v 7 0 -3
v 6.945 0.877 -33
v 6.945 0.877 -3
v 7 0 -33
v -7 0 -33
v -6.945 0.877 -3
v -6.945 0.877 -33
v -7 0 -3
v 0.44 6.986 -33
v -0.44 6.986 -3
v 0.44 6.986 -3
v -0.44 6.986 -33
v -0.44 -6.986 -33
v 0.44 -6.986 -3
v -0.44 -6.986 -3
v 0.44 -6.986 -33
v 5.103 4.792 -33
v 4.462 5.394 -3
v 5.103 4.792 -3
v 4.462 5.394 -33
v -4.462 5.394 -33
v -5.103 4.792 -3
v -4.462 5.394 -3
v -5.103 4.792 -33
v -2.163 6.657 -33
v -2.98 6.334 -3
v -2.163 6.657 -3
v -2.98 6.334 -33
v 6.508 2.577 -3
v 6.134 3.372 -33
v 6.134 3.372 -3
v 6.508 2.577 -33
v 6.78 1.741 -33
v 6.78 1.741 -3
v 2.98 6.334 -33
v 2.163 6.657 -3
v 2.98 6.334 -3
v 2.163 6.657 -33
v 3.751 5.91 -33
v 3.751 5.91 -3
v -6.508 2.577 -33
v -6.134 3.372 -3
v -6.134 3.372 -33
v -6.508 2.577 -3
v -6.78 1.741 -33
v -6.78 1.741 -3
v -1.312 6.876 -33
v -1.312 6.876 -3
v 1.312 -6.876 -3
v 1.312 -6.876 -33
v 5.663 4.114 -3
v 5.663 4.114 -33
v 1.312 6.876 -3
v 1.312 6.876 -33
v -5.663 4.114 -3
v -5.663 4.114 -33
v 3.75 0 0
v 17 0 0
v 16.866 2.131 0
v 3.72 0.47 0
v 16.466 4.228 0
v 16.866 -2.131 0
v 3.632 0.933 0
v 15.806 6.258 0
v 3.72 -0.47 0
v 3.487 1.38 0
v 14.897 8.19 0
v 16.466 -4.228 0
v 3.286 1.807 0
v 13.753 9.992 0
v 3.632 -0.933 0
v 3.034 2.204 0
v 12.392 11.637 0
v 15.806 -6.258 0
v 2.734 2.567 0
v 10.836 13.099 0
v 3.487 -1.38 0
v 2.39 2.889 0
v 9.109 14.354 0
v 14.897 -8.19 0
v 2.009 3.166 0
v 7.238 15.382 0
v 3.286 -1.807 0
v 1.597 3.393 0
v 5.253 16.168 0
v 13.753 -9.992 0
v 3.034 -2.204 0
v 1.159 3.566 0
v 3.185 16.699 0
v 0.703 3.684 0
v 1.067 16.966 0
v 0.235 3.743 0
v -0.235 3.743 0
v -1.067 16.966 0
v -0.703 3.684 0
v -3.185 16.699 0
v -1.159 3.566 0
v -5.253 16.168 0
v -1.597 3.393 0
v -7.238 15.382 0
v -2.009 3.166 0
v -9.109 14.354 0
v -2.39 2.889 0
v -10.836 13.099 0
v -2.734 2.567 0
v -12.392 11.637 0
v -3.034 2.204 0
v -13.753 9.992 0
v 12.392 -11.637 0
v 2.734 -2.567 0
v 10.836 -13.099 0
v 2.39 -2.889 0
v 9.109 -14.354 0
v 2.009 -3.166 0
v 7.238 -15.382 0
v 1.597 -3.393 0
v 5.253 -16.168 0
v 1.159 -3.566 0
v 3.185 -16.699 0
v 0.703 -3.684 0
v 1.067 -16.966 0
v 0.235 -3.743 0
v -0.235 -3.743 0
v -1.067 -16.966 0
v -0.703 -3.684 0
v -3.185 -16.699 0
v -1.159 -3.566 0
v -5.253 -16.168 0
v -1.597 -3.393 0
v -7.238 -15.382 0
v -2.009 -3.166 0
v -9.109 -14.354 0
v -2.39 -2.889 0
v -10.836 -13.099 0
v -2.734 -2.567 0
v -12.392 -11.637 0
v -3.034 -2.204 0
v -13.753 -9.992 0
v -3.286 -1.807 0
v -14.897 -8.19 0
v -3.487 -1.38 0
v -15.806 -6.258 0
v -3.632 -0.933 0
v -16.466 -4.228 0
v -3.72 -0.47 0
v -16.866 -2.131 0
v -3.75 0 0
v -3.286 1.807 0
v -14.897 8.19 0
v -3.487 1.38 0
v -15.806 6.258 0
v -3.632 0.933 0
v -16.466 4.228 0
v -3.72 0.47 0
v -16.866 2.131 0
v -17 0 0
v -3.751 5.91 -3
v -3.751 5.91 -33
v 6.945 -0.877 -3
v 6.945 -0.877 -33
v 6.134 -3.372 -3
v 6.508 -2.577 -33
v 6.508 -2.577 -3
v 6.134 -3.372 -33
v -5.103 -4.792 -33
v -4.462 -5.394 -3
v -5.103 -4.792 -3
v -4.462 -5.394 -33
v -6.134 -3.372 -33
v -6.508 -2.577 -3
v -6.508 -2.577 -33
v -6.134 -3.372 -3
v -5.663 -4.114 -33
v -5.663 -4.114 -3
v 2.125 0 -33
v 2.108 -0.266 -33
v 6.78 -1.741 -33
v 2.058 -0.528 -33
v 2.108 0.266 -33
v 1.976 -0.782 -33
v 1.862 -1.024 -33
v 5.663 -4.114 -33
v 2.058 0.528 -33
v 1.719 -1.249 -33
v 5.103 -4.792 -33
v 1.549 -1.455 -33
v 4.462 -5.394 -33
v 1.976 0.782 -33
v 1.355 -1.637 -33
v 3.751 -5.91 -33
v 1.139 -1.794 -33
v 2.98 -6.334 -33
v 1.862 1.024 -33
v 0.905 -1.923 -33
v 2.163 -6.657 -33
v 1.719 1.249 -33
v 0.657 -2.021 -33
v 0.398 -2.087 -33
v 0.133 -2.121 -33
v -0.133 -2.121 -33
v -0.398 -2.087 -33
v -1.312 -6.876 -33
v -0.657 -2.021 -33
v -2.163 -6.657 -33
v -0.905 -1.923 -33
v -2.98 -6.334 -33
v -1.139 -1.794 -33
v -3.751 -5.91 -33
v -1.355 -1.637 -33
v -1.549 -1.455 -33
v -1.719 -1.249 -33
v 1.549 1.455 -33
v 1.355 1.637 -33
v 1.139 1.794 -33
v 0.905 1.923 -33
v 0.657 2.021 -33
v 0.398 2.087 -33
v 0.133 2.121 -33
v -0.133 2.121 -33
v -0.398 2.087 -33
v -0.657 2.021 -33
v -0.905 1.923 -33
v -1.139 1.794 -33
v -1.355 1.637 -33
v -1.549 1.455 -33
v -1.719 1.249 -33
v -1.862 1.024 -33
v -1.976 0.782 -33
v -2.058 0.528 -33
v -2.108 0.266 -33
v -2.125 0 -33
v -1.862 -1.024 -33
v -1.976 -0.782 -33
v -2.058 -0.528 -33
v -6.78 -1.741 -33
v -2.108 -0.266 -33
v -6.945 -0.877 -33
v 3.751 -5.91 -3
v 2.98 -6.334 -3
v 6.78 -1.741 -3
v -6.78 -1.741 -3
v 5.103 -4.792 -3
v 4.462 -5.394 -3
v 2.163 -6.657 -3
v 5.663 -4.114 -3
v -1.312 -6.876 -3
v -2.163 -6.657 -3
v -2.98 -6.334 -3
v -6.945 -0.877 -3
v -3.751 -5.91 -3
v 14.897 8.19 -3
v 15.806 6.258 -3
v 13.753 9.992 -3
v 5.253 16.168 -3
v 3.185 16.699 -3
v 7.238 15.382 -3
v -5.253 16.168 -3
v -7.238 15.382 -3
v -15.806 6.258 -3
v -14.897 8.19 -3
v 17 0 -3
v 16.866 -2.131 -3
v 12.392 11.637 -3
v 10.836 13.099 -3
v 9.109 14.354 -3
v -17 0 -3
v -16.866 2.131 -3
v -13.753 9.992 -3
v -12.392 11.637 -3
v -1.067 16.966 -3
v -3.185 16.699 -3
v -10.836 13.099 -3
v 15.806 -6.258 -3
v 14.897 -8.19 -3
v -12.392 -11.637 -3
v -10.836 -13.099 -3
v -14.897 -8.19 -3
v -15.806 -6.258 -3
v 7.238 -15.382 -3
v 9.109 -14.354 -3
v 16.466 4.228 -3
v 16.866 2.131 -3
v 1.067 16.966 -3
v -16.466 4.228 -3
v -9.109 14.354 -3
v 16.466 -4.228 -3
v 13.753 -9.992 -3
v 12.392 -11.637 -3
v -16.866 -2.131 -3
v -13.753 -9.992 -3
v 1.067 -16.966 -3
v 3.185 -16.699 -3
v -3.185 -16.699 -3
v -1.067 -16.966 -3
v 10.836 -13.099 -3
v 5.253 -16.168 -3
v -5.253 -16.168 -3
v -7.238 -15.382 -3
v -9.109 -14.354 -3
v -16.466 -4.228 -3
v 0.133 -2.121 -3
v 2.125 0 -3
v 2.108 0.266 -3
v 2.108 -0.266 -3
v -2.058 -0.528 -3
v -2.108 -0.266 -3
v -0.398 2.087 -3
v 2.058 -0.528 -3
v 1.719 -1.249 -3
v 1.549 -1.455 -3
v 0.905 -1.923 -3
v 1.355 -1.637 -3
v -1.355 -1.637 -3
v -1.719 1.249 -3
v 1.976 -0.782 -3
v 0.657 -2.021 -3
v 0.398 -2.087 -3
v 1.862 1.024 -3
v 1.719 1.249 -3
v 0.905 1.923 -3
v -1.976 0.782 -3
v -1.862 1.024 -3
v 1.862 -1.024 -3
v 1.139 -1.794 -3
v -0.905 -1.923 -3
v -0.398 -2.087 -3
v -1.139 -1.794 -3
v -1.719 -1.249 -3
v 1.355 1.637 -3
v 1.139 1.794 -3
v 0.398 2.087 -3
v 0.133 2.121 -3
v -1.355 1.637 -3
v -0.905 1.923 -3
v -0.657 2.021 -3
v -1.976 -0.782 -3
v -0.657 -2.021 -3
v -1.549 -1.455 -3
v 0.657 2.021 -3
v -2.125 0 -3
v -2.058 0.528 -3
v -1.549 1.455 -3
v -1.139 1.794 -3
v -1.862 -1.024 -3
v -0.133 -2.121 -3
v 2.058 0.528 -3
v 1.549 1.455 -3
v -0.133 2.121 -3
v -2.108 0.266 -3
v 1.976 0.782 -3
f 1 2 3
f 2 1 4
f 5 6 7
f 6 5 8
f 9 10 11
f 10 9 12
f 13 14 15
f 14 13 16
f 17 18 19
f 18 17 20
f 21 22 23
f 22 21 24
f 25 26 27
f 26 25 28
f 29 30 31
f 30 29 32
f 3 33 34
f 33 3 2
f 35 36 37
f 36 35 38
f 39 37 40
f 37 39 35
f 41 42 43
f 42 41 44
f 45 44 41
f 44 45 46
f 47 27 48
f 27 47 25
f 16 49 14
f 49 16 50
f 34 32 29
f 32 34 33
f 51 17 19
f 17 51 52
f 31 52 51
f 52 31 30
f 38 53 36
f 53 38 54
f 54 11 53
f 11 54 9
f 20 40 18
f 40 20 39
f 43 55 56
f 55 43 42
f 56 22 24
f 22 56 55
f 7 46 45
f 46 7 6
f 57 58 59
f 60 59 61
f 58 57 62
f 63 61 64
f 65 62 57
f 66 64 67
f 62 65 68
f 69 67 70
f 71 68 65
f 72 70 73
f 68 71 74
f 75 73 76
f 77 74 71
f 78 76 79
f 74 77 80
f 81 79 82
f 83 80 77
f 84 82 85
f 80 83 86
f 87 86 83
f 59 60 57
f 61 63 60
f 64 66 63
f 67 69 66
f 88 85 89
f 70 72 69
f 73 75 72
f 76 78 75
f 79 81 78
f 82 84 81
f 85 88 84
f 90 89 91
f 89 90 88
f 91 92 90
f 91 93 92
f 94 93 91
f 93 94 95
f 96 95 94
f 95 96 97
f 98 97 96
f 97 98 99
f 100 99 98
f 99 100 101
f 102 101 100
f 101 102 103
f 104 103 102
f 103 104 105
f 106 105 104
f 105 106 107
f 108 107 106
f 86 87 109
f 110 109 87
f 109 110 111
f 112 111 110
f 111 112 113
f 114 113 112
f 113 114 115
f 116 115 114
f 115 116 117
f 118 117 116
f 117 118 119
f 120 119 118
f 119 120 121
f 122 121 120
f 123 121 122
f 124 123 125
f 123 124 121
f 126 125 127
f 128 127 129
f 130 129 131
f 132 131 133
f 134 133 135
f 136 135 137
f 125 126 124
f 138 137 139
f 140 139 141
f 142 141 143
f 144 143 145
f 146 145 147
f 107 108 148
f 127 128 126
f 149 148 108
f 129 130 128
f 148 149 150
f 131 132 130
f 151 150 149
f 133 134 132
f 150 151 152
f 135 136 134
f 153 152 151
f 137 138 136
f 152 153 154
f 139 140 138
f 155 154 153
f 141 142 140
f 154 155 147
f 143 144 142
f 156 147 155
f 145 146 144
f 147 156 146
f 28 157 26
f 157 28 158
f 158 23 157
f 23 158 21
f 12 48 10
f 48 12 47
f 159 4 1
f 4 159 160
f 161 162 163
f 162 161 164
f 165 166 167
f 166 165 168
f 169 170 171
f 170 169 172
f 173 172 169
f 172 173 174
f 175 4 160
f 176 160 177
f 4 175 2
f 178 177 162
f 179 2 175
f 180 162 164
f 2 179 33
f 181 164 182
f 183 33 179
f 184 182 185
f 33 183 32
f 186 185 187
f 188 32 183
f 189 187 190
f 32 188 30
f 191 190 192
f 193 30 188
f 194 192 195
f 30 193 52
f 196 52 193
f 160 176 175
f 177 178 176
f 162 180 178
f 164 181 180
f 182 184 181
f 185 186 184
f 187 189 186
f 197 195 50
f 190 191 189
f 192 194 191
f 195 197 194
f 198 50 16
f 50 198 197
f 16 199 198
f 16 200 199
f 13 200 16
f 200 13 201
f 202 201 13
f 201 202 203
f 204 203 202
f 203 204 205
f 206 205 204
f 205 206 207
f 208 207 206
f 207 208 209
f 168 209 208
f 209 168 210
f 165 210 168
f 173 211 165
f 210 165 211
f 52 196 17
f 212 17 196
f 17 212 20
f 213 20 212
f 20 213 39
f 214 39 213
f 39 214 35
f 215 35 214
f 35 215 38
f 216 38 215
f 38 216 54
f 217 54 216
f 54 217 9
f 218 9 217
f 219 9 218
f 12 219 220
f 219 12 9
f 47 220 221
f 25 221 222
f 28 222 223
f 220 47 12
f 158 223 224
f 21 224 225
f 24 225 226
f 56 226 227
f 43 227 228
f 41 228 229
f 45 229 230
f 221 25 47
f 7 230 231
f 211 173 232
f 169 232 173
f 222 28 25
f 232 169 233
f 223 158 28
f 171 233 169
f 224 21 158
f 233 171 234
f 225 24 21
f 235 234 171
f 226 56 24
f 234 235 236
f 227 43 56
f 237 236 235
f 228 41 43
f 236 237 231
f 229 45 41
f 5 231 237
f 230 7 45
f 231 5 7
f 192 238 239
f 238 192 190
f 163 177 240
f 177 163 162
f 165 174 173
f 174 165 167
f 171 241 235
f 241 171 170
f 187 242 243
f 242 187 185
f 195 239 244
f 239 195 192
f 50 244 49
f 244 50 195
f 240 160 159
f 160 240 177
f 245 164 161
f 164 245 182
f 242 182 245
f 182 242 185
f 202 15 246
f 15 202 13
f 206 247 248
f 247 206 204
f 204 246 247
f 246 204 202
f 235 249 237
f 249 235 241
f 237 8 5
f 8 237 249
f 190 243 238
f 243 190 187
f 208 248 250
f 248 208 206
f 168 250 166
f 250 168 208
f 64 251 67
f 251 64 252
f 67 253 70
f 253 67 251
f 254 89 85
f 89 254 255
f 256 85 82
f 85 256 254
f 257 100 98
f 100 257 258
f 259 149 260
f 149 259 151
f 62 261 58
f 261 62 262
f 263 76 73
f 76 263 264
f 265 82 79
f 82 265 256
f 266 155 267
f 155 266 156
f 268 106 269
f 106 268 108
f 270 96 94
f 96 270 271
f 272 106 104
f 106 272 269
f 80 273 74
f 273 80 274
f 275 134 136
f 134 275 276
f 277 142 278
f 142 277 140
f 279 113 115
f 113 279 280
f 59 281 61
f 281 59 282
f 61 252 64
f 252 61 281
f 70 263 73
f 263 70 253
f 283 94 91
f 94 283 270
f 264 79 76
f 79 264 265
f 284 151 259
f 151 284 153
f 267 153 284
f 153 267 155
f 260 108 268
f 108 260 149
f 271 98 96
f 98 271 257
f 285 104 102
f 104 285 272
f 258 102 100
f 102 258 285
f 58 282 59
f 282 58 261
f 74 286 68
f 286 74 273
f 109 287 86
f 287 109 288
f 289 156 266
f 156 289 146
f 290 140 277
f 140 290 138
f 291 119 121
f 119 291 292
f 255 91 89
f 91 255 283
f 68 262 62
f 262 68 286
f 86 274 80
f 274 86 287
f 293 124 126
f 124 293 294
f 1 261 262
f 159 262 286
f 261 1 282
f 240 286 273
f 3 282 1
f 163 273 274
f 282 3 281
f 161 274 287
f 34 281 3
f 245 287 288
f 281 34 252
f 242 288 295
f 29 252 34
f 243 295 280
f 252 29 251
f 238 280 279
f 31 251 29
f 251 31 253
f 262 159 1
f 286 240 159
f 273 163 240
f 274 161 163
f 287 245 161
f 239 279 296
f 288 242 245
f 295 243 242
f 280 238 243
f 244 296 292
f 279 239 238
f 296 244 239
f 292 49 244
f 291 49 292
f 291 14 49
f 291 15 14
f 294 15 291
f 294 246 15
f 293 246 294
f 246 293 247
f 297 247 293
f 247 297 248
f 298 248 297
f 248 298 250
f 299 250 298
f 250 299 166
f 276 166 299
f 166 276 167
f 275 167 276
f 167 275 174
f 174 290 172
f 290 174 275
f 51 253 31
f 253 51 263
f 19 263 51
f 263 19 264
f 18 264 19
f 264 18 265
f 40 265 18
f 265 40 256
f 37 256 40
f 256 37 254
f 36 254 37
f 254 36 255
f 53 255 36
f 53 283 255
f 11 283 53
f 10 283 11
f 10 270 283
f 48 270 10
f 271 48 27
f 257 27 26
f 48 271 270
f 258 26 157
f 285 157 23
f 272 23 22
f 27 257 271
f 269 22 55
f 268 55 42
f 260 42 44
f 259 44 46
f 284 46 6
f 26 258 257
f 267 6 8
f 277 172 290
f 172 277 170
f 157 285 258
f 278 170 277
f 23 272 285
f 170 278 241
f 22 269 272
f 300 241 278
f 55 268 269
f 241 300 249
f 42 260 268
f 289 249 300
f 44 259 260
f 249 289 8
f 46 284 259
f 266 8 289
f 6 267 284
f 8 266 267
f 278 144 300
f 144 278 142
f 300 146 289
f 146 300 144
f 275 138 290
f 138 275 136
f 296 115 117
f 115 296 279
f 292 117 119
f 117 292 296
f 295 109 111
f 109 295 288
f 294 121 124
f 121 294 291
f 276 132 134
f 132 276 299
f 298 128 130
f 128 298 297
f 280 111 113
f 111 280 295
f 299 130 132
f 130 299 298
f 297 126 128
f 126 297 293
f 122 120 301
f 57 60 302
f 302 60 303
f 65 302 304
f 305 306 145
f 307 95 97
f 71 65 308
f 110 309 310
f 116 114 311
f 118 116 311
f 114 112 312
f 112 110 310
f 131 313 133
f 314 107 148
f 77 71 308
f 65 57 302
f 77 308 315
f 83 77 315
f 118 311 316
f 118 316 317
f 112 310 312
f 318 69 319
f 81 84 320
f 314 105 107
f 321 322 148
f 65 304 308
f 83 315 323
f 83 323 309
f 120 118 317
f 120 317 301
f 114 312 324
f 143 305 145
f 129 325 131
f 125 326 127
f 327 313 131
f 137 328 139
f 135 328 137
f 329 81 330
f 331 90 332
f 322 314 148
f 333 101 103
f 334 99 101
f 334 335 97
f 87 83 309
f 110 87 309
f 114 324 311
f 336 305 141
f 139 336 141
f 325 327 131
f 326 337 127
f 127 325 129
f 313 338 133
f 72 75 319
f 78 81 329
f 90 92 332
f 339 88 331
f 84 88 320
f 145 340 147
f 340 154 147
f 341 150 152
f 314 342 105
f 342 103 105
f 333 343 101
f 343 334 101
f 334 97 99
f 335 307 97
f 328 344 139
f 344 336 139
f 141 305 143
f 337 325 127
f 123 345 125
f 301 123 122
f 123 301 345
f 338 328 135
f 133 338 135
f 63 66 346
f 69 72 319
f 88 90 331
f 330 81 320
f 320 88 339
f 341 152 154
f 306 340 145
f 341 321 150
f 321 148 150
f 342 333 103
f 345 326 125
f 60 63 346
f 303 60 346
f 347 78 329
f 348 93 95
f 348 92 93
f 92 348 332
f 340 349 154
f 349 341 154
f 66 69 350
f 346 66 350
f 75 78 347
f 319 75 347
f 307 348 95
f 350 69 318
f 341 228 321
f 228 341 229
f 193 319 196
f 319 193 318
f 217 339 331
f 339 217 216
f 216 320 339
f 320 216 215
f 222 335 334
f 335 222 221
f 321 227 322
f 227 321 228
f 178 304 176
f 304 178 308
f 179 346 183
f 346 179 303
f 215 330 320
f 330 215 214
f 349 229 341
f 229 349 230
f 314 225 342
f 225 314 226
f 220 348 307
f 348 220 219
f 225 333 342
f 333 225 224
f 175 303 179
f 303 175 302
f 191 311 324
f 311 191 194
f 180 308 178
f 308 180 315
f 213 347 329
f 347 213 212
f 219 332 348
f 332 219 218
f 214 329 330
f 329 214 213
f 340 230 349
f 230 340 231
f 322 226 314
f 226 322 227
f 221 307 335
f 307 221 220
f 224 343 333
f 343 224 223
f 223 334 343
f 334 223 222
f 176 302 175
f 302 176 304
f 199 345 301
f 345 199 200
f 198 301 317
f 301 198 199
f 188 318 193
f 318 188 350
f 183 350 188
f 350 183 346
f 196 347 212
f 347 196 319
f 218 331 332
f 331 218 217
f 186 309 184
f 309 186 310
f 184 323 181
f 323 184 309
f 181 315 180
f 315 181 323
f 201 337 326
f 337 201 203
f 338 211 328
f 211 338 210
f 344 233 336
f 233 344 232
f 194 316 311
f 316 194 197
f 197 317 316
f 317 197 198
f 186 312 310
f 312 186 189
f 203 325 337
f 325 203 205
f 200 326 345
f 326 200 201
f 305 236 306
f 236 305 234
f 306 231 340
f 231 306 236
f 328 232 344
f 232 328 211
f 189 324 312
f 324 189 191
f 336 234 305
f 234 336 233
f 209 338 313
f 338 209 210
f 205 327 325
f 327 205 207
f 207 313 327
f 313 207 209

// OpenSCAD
$fn = 50;


difference() {
	union() {
		translate(v = [0, 0, -33.0000000000]) {
			cylinder(h = 33, r = 7.0000000000);
		}
		translate(v = [0, 0, -3.0000000000]) {
			cylinder(h = 3, r = 17.0000000000);
		}
	}
	union() {
		translate(v = [0, 0, 0]) {
			rotate(a = [0, 0, 0]) {
				difference() {
					union() {
						#translate(v = [0, 0, -33.0000000000]) {
							cylinder(h = 33, r = 2.0000000000);
						}
						#translate(v = [0, 0, -3]) {
							cylinder(h = 3, r = 7.0000000000, r1 = 2.1250000000, r2 = 3.7500000000);
						}
						#translate(v = [0, 0, -33.0000000000]) {
							cylinder(h = 33, r = 2.1250000000);
						}
						#translate(v = [0, 0, -33.0000000000]) {
							cylinder(h = 33, r = 2.0000000000);
						}
					}
					union();
				}
			}
		}
	}
}
